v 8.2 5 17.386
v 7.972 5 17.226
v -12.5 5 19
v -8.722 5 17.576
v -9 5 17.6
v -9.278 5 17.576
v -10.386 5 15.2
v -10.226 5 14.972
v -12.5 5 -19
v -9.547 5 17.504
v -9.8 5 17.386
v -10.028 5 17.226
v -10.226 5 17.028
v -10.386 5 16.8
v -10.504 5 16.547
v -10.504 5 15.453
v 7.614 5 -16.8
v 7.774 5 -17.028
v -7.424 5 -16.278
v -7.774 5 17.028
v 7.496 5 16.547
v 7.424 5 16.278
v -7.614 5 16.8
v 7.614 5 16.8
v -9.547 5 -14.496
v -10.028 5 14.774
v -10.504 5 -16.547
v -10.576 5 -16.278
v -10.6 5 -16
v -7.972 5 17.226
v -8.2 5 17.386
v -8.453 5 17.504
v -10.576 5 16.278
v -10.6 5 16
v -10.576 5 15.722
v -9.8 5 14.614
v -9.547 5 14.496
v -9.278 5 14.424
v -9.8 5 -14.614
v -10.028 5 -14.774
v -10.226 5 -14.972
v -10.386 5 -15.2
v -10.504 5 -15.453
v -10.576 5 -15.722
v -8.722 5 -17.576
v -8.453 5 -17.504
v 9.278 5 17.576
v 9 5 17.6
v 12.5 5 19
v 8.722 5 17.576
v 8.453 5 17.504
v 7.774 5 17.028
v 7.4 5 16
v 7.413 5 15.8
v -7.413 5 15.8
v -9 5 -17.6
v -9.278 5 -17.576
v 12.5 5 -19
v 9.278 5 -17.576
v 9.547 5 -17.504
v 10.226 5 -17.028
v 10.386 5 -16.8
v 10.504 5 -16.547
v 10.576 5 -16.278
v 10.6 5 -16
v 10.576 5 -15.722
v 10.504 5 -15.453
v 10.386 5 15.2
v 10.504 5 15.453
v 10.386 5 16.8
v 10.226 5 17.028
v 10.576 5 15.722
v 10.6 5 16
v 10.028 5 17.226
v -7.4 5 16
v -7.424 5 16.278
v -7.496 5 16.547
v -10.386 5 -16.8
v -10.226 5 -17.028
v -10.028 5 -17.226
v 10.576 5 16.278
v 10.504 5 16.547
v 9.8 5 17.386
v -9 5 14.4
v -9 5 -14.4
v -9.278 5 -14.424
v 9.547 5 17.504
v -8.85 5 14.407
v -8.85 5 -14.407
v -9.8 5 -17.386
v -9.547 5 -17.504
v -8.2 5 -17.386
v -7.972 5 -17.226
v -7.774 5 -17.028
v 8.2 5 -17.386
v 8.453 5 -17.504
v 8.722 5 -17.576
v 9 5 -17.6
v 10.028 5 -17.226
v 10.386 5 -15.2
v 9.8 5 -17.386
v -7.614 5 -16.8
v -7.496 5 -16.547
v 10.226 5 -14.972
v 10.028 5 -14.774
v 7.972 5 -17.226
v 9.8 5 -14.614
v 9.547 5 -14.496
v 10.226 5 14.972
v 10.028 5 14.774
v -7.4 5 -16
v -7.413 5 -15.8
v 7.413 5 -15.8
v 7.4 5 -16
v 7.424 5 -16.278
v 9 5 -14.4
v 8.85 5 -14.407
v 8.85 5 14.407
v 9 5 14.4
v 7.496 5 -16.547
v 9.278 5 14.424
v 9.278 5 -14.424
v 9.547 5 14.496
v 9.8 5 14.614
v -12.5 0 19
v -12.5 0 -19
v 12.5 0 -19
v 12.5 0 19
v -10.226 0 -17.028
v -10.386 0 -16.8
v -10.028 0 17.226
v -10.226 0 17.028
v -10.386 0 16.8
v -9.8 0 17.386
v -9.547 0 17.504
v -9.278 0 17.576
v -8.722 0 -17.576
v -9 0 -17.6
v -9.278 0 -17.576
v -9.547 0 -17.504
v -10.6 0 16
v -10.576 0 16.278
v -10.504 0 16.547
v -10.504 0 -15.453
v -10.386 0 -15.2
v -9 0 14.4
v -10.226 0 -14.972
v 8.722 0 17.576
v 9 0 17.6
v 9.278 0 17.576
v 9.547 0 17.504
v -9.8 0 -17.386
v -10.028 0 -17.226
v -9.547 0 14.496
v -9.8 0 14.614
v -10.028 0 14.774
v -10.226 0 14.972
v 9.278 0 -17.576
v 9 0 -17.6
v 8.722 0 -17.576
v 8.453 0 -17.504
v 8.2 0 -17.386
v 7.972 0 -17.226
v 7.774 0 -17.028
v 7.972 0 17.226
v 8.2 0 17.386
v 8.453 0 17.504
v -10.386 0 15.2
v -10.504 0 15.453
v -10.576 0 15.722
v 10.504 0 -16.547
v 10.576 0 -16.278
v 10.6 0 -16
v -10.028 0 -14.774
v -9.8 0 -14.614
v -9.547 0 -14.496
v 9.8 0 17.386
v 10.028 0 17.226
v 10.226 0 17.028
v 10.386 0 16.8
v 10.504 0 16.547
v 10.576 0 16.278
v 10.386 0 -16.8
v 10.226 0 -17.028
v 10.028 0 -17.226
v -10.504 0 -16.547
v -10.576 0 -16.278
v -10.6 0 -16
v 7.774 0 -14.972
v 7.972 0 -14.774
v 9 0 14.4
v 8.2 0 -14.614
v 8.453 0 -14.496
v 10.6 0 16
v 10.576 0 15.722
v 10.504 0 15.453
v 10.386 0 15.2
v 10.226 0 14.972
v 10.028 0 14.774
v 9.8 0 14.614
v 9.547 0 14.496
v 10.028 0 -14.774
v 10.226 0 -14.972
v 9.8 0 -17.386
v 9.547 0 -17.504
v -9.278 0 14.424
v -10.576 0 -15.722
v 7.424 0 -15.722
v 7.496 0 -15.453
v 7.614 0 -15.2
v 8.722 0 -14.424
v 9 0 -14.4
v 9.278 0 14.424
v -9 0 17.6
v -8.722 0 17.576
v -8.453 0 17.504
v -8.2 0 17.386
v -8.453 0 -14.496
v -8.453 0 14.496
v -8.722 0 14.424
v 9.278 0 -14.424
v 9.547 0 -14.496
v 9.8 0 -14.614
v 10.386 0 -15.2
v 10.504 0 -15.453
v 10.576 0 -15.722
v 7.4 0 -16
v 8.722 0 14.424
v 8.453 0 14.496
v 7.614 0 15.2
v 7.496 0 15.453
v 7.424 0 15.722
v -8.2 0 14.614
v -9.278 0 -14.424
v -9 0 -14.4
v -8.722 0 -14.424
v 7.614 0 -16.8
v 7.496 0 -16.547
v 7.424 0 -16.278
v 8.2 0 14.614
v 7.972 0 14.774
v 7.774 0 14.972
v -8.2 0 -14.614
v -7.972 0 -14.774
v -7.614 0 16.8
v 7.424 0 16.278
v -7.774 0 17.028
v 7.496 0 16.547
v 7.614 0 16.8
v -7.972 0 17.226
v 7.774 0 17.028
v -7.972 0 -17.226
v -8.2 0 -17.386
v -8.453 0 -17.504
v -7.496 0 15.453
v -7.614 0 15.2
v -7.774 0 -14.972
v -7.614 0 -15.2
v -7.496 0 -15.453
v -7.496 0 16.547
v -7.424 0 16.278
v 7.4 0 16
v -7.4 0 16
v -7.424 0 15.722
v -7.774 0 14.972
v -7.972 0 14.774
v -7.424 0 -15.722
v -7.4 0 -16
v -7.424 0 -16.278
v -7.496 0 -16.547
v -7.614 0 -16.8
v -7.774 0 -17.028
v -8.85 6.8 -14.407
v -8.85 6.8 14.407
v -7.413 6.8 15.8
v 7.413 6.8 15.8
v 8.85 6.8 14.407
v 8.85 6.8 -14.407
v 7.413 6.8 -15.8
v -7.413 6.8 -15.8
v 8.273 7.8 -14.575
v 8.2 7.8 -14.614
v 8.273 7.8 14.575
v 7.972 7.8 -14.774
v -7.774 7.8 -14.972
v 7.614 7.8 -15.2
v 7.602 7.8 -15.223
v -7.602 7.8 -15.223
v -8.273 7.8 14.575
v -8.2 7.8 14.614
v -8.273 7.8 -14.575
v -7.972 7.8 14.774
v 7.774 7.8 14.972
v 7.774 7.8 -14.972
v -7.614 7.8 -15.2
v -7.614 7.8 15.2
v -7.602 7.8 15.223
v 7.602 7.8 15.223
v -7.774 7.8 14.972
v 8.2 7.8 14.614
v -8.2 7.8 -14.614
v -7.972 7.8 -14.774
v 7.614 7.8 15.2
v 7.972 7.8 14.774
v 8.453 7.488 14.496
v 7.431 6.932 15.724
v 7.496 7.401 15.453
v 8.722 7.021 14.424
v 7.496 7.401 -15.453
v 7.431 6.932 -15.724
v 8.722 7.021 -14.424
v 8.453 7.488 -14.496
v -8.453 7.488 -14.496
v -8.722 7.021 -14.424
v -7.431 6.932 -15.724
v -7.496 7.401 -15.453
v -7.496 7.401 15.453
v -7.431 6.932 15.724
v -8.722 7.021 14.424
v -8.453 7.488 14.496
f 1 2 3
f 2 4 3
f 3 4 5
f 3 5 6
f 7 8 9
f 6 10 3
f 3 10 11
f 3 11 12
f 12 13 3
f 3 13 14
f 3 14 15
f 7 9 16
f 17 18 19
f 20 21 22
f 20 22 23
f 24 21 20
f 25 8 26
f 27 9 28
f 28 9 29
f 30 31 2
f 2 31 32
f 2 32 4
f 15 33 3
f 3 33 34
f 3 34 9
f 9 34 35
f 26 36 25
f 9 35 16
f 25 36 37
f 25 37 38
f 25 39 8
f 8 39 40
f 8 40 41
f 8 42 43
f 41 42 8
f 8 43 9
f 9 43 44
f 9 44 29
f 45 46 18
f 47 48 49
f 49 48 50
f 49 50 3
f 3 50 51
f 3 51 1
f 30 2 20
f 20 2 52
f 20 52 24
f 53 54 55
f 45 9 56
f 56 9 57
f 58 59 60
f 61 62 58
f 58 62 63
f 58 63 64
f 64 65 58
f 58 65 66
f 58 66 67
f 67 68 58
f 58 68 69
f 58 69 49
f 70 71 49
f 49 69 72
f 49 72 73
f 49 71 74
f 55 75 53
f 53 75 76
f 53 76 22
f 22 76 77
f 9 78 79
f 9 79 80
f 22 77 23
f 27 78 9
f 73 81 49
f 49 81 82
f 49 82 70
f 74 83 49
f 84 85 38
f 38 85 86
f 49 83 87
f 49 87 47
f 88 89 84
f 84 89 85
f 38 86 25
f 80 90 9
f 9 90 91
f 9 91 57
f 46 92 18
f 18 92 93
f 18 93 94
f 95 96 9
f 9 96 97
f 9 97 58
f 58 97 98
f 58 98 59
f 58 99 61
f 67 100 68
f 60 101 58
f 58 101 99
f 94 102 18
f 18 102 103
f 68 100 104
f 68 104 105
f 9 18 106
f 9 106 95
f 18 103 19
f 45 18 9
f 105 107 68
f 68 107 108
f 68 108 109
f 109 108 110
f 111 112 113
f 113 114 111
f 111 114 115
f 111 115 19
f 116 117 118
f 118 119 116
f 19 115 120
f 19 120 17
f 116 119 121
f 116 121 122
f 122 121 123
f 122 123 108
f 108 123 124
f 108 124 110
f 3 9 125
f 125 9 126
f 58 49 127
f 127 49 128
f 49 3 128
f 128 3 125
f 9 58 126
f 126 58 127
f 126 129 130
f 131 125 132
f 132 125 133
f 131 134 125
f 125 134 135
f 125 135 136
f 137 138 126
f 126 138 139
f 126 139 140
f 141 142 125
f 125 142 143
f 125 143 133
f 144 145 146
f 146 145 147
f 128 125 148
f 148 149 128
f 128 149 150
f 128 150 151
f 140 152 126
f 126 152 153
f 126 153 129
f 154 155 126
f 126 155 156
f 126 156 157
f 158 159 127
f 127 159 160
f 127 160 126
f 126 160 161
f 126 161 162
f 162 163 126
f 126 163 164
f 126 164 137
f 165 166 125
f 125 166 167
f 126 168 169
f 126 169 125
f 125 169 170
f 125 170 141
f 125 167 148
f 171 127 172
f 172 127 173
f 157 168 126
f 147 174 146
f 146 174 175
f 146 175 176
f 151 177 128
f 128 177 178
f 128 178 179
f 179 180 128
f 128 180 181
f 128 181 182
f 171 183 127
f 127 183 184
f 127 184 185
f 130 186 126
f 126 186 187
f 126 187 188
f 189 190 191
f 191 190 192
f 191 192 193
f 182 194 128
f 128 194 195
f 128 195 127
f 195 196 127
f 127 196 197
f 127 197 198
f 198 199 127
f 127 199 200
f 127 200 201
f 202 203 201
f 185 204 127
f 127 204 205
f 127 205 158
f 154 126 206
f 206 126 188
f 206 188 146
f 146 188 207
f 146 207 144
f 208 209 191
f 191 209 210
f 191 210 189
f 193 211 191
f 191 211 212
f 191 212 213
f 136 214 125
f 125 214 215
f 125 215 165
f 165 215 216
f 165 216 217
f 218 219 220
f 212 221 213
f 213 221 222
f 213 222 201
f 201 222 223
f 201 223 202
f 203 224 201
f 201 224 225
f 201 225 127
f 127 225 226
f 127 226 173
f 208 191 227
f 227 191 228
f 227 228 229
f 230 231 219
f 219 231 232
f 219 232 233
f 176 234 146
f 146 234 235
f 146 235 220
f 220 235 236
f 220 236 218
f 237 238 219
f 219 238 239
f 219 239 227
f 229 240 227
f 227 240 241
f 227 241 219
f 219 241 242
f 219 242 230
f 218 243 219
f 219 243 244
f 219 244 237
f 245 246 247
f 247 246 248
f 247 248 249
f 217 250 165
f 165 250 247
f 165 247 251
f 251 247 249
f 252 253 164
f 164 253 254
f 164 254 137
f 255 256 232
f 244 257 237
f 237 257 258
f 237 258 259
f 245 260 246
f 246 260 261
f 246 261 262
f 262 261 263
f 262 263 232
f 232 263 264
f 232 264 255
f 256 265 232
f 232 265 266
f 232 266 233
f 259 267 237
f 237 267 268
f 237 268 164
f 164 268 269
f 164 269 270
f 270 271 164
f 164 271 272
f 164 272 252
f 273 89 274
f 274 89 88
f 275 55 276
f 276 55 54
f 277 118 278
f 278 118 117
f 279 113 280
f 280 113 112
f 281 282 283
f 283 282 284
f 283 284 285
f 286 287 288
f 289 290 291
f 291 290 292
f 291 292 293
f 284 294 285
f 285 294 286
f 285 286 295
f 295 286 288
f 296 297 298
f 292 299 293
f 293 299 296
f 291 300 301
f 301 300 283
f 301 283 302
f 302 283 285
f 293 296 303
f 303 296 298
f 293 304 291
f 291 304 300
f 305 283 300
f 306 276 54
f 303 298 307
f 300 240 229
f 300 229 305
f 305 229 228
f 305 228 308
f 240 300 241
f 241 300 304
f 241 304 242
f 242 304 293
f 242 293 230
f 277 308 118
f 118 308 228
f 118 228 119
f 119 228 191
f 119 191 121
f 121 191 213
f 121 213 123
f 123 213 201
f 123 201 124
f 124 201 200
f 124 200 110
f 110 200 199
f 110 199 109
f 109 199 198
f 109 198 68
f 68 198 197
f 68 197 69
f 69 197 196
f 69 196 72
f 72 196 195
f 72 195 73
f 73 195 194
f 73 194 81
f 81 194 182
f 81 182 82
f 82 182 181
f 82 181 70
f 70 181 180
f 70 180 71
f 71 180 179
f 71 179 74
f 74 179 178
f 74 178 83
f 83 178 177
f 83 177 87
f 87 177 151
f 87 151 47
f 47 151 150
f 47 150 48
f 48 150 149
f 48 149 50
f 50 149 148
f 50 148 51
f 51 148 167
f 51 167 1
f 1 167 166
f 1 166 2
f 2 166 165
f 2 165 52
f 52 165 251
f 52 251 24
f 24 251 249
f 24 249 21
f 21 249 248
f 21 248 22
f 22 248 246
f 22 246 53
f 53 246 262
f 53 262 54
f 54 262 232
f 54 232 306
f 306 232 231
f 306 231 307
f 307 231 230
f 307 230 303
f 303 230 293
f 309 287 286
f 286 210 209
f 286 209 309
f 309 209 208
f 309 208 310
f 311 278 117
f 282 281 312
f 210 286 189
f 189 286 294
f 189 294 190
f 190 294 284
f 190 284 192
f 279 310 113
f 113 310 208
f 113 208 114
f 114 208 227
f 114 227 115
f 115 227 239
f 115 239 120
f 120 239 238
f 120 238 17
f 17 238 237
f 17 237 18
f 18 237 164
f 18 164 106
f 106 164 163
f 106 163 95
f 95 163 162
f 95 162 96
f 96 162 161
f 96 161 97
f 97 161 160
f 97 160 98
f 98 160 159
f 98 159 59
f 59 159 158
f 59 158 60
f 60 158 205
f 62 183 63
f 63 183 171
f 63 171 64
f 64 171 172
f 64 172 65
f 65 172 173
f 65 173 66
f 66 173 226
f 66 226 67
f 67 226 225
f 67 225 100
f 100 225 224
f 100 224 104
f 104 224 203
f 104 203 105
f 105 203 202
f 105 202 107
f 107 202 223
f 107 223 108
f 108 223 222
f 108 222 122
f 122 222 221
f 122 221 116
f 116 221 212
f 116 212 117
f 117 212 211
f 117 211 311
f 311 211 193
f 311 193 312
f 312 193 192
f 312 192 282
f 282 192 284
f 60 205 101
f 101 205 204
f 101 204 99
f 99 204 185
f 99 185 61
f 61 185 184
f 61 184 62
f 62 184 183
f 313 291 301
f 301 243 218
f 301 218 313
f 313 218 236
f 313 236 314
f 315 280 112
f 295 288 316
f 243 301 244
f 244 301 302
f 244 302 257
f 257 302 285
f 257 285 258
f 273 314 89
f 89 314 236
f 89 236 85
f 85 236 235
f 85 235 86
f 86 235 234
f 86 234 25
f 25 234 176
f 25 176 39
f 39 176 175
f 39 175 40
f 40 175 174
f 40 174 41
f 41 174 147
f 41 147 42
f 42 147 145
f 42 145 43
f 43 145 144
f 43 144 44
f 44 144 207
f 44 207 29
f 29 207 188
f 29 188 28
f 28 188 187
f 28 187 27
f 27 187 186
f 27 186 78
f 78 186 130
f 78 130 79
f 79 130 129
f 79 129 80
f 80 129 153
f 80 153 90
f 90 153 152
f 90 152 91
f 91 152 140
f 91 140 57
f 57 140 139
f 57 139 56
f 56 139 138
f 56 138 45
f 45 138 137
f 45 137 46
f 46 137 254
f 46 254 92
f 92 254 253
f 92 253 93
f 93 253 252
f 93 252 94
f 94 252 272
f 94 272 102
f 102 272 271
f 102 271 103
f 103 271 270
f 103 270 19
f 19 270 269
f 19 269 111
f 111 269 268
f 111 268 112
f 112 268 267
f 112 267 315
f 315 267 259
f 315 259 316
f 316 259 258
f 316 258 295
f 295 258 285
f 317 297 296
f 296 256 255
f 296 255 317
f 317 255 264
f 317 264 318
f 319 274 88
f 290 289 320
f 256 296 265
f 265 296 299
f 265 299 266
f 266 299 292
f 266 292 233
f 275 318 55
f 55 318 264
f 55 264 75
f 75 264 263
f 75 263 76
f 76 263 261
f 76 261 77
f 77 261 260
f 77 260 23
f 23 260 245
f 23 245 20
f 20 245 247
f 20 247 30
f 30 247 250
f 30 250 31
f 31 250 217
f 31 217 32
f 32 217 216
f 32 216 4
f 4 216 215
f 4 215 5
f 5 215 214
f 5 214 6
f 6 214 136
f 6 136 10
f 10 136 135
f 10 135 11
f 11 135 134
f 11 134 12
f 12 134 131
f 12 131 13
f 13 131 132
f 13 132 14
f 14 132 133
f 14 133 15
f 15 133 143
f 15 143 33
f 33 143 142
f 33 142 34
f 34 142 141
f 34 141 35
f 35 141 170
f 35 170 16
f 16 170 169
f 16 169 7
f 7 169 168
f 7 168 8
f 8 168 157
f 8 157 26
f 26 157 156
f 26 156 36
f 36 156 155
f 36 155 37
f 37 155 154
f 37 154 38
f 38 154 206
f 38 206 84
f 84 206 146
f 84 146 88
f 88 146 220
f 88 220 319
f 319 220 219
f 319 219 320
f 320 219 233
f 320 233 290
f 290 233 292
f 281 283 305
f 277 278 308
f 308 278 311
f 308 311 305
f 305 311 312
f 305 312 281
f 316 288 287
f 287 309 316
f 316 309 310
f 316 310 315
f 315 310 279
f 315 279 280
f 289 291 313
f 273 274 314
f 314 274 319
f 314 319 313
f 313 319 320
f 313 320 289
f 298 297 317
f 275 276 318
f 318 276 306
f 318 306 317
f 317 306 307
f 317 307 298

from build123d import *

# Parameters (mm, degrees)
SKETCH1_W               = 25
SKETCH1_H               = 38
BOSS_EXTRUDE1_DEPTH     = 5
SKETCH4_R               = 4.15
CUT_EXTRUDE2_DEPTH      = 6
SKETCH9_W               = 17.7
SKETCH9_H               = 31.6
BOSS_EXTRUDE3_DEPTH     = 2.8
SKETCH6_R               = 1.6
CUT_EXTRUDE4_DEPTH      = 3.8
CUT_EXTRUDE4_DEPTH_BACK = 6
CHAMFER1_SIZE           = 1
CHAMFER1_SIZE2          = 0.577350269
CHAMFER1_PART_2_SIZE    = 1
CHAMFER1_PART_2_SIZE2   = 0.577350269
CHAMFER1_PART_3_SIZE    = 1
CHAMFER1_PART_3_SIZE2   = 0.577350269
CHAMFER1_PART_4_SIZE    = 1
CHAMFER1_PART_4_SIZE2   = 0.577350269
SKETCH10_R              = 4.15
BOSS_EXTRUDE4_DEPTH     = 5


with BuildPart() as part:
    # Sketch1 → Boss-Extrude1 (new body)
    with BuildSketch(Plane(origin=(0, 0, 0), x_dir=(1, 0, 0), z_dir=(0, 1, 0))):
        Rectangle(SKETCH1_W, SKETCH1_H)
    extrude(amount=BOSS_EXTRUDE1_DEPTH)

    # Sketch4 → Cut-Extrude2 (cut, through all)
    with BuildSketch(Plane(origin=(0, 5, 0), x_dir=(1, 0, 0), z_dir=(0, 1, 0))):
        Circle(SKETCH4_R)
    extrude(amount=-CUT_EXTRUDE2_DEPTH, mode=Mode.SUBTRACT)

    # Sketch9 → Boss-Extrude3 (add)
    with BuildSketch(Plane(origin=(0, 5, 0), x_dir=(1, 0, 0), z_dir=(0, 1, 0))):
        Rectangle(SKETCH9_W, SKETCH9_H)
    extrude(amount=BOSS_EXTRUDE3_DEPTH)

    # Sketch6 → Cut-Extrude4 (cut, two sides)
    with BuildSketch(Plane(origin=(0, 5, 0), x_dir=(1, 0, 0), z_dir=(0, 1, 0))) as cut_extrude4_sk:
        with Locations((9, -16)):
            Circle(SKETCH6_R)
        with Locations((-9, -16)):
            Circle(SKETCH6_R)
        with Locations((-9, 16)):
            Circle(SKETCH6_R)
        with Locations((9, 16)):
            Circle(SKETCH6_R)
    extrude(amount=CUT_EXTRUDE4_DEPTH, mode=Mode.SUBTRACT)
    extrude(cut_extrude4_sk.sketch, amount=-CUT_EXTRUDE4_DEPTH_BACK, mode=Mode.SUBTRACT)

    # Chamfer1
    chamfer1_edges = [part.edges().sort_by_distance(p)[0] for p in [
        (8.85, 7.8, 0),
    ]]
    chamfer1_side = [part.faces().sort_by_distance(p)[0] for p in [
        (8.85, 6.4, 0),
    ]]
    chamfer(chamfer1_edges, length=CHAMFER1_SIZE, length2=CHAMFER1_SIZE2, reference=chamfer1_side[0])

    # Chamfer1 part 2
    chamfer1_part_2_edges = [part.edges().sort_by_distance(p)[0] for p in [
        (0, 7.8, 15.8),
    ]]
    chamfer1_part_2_side = [part.faces().sort_by_distance(p)[0] for p in [
        (0, 6.4, 15.8),
    ]]
    chamfer(chamfer1_part_2_edges, length=CHAMFER1_PART_2_SIZE, length2=CHAMFER1_PART_2_SIZE2, reference=chamfer1_part_2_side[0])

    # Chamfer1 part 3
    chamfer1_part_3_edges = [part.edges().sort_by_distance(p)[0] for p in [
        (0, 7.8, -15.8),
    ]]
    chamfer1_part_3_side = [part.faces().sort_by_distance(p)[0] for p in [
        (0, 6.4, -15.8),
    ]]
    chamfer(chamfer1_part_3_edges, length=CHAMFER1_PART_3_SIZE, length2=CHAMFER1_PART_3_SIZE2, reference=chamfer1_part_3_side[0])

    # Chamfer1 part 4
    chamfer1_part_4_edges = [part.edges().sort_by_distance(p)[0] for p in [
        (-8.85, 7.8, 0),
    ]]
    chamfer1_part_4_side = [part.faces().sort_by_distance(p)[0] for p in [
        (-8.85, 6.4, 0),
    ]]
    chamfer(chamfer1_part_4_edges, length=CHAMFER1_PART_4_SIZE, length2=CHAMFER1_PART_4_SIZE2, reference=chamfer1_part_4_side[0])

    # Sketch10 → Boss-Extrude4 (add)
    with BuildSketch(Plane.XZ.offset(-5)):
        Circle(SKETCH10_R)
    extrude(amount=BOSS_EXTRUDE4_DEPTH)


solid = part.part
